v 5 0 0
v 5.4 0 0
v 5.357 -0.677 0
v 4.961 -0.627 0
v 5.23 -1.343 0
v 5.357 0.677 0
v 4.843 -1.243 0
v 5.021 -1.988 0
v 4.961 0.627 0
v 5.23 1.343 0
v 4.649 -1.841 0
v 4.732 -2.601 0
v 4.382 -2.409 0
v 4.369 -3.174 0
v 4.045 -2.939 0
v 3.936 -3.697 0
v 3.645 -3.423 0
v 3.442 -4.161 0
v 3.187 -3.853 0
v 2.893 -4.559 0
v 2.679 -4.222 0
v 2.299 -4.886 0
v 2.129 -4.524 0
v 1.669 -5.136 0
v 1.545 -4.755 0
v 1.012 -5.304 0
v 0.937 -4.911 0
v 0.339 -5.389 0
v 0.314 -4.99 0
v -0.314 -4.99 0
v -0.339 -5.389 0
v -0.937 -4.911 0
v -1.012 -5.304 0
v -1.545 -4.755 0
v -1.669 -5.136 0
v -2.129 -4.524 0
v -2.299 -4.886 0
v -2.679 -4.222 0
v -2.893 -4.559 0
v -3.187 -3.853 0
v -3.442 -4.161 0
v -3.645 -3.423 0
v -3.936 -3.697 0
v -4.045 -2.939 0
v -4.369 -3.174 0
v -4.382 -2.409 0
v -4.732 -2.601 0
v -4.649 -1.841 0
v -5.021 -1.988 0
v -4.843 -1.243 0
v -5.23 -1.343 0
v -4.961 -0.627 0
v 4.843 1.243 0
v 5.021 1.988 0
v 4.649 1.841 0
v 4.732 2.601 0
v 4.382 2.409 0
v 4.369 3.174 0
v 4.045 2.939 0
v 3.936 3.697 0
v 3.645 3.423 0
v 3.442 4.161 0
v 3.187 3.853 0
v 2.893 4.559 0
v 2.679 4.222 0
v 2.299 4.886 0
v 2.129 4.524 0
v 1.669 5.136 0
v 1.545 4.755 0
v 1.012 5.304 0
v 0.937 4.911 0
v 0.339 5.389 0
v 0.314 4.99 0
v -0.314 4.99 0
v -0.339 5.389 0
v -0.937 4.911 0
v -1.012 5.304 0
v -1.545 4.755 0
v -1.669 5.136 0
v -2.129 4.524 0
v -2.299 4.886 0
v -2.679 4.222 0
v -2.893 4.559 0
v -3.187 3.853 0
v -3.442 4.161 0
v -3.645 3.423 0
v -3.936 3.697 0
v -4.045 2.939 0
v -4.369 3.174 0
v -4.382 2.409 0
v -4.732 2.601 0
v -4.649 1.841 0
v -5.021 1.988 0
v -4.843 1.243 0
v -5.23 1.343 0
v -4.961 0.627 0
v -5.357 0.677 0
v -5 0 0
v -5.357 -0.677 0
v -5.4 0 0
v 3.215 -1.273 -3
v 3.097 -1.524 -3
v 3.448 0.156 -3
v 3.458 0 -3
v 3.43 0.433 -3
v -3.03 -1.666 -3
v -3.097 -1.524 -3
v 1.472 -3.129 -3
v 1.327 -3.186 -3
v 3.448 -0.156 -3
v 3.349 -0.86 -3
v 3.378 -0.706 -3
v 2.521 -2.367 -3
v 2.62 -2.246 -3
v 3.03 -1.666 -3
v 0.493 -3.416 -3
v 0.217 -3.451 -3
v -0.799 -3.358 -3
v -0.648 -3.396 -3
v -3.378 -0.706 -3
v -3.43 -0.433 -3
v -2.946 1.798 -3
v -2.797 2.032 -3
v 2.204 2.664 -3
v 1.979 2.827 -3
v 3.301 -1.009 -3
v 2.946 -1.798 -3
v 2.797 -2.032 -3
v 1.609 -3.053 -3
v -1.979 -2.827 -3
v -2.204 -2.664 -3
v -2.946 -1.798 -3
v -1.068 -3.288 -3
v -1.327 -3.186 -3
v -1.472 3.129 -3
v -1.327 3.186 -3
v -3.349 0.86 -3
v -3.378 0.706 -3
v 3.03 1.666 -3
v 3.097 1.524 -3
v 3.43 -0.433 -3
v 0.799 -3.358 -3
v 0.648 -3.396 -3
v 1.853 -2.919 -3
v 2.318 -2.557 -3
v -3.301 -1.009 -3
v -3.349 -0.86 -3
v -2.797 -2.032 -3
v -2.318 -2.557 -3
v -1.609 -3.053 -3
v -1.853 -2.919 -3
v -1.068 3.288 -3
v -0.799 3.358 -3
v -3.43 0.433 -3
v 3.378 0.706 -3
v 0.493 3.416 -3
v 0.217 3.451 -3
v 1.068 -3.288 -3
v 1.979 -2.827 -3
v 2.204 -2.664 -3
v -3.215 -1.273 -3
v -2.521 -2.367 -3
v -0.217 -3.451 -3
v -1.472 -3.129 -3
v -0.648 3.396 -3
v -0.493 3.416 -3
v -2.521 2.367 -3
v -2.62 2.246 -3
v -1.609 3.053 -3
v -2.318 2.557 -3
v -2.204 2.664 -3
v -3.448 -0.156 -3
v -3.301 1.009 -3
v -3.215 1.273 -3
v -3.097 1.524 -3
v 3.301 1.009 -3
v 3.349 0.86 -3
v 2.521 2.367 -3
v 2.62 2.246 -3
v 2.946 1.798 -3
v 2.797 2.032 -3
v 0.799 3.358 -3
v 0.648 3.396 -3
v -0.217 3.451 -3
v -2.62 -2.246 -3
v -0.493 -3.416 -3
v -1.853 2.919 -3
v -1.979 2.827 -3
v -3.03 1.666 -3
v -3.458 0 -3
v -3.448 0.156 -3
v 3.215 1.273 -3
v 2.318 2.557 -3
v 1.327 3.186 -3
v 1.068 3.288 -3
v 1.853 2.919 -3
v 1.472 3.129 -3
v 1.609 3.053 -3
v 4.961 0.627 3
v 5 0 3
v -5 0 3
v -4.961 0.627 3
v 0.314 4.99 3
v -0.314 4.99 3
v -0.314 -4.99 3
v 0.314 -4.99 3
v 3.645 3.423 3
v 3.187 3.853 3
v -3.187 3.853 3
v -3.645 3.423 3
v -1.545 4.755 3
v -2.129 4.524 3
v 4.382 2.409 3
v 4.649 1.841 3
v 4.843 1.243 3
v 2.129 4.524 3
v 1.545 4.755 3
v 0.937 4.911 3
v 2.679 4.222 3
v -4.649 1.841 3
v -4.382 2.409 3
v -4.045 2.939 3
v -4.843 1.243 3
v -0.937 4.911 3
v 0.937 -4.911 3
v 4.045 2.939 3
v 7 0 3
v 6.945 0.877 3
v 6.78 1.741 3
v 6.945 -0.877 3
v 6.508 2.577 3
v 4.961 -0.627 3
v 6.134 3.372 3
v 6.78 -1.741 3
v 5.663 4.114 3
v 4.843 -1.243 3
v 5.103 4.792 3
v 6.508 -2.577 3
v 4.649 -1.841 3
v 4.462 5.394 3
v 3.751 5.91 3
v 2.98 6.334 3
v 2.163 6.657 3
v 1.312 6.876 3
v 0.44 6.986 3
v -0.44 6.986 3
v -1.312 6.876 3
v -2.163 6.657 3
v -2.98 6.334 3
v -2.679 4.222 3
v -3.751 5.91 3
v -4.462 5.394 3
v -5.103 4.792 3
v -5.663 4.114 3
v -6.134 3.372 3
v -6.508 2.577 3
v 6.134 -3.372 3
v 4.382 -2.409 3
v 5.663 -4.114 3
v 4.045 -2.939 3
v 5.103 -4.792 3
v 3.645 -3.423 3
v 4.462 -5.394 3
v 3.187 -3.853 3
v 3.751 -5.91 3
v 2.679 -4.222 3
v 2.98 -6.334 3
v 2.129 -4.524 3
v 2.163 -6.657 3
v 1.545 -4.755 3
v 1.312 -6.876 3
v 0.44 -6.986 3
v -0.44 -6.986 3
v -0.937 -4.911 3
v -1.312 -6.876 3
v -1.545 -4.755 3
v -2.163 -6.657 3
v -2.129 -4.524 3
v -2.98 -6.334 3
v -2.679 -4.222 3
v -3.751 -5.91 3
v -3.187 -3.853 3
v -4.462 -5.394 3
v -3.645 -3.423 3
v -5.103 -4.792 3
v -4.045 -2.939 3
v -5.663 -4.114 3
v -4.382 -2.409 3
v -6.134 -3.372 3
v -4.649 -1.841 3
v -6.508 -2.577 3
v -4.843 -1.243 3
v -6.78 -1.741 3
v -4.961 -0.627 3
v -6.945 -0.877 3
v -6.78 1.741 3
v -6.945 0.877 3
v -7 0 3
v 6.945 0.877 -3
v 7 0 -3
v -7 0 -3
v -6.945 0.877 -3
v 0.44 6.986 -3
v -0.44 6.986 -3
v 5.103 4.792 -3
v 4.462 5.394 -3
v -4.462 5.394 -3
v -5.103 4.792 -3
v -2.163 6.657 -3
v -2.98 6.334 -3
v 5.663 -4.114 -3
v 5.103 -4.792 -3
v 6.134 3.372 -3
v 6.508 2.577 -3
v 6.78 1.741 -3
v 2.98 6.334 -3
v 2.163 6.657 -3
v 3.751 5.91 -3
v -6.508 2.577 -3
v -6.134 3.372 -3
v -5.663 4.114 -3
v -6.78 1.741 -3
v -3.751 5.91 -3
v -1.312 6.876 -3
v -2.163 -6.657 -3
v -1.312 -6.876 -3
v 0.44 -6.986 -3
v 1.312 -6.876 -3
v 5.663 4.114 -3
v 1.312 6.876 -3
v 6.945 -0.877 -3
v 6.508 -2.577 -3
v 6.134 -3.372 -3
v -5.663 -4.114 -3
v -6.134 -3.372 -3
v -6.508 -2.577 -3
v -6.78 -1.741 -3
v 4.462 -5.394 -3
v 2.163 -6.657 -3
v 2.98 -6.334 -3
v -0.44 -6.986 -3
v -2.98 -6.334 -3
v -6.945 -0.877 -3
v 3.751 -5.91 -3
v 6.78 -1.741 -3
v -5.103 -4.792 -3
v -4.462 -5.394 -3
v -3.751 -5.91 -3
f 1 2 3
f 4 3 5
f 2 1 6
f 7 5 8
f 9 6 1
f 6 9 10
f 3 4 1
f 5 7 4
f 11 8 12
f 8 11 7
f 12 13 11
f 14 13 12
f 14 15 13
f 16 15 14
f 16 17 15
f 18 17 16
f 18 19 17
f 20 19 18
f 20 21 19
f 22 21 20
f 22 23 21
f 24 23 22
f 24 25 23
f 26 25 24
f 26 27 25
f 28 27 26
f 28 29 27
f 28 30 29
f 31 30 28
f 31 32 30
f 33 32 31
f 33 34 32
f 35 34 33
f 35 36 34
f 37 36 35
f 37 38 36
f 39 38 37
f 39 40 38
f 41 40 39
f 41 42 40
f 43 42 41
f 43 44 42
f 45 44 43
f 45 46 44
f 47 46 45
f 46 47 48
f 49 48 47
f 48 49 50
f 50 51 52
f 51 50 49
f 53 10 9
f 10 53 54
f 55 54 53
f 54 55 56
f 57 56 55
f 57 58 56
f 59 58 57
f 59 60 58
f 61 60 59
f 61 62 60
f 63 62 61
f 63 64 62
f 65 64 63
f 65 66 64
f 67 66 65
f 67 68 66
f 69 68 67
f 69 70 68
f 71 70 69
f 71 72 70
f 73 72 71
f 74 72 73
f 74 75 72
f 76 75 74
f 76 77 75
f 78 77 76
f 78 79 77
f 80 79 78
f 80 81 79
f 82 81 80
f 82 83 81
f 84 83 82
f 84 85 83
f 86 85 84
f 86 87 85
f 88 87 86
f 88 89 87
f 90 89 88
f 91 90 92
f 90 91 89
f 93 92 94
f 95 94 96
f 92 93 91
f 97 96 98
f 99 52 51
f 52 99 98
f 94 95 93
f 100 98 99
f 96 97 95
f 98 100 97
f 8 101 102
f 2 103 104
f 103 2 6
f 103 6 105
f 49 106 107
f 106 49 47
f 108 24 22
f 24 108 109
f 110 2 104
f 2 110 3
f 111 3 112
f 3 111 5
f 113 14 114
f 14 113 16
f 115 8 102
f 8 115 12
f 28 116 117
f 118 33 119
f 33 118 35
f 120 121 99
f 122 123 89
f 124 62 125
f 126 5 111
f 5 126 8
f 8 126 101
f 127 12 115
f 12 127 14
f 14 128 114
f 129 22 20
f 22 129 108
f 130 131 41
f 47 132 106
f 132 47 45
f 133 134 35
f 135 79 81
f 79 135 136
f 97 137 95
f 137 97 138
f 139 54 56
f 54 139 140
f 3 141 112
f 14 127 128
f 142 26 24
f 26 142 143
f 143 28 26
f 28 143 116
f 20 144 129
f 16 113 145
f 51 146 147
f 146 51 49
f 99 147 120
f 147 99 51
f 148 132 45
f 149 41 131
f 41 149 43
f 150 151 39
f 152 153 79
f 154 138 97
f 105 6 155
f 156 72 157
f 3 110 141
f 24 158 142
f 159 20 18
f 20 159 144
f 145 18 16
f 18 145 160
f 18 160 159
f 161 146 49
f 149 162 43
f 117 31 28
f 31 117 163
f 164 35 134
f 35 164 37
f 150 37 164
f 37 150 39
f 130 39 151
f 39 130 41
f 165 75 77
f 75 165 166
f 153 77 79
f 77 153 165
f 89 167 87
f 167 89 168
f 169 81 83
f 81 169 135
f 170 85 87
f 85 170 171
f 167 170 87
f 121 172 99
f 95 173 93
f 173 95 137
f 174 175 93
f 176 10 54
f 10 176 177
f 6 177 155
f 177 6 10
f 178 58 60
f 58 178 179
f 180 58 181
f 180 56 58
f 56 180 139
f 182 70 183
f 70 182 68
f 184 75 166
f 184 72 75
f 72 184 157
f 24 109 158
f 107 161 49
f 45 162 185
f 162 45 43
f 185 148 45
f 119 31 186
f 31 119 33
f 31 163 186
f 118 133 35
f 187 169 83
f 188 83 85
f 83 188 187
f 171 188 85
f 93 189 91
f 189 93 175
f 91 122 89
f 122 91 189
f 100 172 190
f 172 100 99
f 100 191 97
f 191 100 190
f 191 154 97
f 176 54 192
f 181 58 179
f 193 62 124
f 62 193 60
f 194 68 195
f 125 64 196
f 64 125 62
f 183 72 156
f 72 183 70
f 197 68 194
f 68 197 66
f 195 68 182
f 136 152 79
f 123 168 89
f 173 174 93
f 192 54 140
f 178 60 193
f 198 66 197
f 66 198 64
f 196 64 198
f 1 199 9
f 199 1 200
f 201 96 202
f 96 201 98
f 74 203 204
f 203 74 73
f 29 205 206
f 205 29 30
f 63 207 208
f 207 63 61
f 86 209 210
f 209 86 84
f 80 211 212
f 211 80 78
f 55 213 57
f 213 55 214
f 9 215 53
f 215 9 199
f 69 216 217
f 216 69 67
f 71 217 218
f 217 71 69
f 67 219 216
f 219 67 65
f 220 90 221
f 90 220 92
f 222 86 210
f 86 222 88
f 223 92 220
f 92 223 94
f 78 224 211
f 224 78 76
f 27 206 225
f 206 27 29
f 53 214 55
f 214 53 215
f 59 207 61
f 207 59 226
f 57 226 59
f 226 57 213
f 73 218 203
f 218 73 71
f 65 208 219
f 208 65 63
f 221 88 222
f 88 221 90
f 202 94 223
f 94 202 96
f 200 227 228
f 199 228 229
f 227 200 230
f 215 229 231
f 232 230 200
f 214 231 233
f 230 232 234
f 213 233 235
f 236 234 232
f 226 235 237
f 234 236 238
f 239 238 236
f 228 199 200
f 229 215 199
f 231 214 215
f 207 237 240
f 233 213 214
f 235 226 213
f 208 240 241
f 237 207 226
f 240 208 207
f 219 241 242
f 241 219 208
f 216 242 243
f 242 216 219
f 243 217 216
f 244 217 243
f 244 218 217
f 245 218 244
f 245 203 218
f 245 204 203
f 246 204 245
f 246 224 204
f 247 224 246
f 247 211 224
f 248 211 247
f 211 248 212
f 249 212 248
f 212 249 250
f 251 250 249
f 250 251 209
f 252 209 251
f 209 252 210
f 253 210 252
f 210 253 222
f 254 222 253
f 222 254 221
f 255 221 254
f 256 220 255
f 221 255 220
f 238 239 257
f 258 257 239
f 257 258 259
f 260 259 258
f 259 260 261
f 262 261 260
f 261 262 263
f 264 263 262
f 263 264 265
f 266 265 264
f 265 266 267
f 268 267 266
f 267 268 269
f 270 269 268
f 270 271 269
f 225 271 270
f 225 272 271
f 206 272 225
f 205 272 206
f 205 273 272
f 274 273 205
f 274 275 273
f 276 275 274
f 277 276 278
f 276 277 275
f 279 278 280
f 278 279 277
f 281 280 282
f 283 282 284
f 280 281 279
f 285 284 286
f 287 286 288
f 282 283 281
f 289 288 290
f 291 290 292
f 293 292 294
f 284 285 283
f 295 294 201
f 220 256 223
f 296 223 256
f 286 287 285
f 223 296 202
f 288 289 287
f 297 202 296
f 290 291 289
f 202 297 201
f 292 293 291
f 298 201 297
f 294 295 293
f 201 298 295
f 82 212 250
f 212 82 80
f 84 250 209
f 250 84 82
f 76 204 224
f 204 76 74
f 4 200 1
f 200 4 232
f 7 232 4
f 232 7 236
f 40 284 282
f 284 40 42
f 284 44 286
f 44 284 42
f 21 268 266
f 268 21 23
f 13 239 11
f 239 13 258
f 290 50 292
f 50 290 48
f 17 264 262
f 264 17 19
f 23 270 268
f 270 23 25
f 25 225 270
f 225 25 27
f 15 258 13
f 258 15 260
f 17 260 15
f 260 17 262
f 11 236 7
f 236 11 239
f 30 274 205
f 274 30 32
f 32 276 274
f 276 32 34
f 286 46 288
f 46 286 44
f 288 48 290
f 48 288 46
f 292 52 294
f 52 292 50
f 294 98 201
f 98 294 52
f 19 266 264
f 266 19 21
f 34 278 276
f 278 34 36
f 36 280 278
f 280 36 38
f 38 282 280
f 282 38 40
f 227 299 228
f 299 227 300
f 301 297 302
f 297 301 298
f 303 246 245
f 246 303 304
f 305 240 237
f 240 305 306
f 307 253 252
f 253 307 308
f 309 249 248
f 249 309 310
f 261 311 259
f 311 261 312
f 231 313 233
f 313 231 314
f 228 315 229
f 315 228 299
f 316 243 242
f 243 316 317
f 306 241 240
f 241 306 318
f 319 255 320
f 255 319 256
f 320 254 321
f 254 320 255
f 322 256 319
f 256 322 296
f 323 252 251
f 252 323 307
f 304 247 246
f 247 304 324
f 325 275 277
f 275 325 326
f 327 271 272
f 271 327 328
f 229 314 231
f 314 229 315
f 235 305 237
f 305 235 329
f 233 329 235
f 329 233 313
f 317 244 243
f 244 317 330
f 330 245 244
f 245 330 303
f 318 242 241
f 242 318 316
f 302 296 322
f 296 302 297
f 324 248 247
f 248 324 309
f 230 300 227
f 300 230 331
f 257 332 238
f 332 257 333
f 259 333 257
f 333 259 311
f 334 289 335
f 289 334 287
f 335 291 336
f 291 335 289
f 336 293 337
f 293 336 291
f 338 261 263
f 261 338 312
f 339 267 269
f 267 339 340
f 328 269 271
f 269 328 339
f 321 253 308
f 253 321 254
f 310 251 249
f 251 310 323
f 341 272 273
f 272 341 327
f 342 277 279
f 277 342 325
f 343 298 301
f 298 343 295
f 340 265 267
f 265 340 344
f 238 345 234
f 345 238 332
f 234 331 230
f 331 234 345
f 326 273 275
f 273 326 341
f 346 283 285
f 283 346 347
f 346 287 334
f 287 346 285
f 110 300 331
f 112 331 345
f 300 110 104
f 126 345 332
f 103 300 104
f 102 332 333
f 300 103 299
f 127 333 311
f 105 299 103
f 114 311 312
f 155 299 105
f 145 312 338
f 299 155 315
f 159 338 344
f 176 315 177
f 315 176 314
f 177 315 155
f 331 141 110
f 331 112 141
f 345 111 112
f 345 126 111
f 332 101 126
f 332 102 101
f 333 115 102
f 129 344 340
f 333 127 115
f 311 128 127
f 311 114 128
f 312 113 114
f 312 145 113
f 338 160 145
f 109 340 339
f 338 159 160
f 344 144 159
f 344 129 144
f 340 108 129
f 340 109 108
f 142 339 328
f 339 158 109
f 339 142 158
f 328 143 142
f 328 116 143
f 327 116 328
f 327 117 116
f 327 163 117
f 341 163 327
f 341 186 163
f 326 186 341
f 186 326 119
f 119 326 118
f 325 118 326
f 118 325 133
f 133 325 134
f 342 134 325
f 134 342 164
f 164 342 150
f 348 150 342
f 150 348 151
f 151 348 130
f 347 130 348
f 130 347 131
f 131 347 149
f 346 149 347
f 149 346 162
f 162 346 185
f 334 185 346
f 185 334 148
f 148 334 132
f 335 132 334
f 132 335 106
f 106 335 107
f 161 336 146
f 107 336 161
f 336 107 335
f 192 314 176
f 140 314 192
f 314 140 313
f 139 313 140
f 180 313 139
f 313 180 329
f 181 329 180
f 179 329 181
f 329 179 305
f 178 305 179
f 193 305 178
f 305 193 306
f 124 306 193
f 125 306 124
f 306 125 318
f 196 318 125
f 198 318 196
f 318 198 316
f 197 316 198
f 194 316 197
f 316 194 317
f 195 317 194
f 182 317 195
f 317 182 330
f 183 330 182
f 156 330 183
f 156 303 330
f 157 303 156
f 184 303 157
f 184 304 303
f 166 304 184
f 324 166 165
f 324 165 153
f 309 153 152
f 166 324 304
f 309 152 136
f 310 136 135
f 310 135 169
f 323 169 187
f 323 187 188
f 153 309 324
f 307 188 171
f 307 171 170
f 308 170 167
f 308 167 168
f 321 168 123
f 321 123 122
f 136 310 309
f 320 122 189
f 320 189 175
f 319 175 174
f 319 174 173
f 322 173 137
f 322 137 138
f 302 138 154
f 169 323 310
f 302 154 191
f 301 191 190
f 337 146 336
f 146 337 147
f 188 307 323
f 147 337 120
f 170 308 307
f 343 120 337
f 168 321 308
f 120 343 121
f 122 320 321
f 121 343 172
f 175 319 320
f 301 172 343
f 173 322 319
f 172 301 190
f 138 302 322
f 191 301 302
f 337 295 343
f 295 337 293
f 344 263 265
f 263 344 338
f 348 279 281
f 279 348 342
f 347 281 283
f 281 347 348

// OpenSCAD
$fn = 50;


difference() {
	union() {
		translate(v = [0, 0, -3.0000000000]) {
			cylinder(h = 6, r = 7.0000000000);
		}
	}
	union() {
		translate(v = [0, 0, 0]) {
			rotate(a = [0, 0, 0]) {
				difference() {
					union() {
						translate(v = [0, 0, -6.0000000000]) {
							cylinder(h = 6, r = 2.6000000000);
						}
						translate(v = [0, 0, -3.9000000000]) {
							cylinder(h = 3.9000000000, r1 = 2.8750000000, r2 = 5.4000000000);
						}
						translate(v = [0, 0, -6.0000000000]) {
							cylinder(h = 6, r = 2.8750000000);
						}
						translate(v = [0, 0, -6.0000000000]) {
							cylinder(h = 6, r = 2.6000000000);
						}
					}
					union();
				}
			}
		}
		#cylinder(h = 3, r = 5.0000000000);
	}
}
